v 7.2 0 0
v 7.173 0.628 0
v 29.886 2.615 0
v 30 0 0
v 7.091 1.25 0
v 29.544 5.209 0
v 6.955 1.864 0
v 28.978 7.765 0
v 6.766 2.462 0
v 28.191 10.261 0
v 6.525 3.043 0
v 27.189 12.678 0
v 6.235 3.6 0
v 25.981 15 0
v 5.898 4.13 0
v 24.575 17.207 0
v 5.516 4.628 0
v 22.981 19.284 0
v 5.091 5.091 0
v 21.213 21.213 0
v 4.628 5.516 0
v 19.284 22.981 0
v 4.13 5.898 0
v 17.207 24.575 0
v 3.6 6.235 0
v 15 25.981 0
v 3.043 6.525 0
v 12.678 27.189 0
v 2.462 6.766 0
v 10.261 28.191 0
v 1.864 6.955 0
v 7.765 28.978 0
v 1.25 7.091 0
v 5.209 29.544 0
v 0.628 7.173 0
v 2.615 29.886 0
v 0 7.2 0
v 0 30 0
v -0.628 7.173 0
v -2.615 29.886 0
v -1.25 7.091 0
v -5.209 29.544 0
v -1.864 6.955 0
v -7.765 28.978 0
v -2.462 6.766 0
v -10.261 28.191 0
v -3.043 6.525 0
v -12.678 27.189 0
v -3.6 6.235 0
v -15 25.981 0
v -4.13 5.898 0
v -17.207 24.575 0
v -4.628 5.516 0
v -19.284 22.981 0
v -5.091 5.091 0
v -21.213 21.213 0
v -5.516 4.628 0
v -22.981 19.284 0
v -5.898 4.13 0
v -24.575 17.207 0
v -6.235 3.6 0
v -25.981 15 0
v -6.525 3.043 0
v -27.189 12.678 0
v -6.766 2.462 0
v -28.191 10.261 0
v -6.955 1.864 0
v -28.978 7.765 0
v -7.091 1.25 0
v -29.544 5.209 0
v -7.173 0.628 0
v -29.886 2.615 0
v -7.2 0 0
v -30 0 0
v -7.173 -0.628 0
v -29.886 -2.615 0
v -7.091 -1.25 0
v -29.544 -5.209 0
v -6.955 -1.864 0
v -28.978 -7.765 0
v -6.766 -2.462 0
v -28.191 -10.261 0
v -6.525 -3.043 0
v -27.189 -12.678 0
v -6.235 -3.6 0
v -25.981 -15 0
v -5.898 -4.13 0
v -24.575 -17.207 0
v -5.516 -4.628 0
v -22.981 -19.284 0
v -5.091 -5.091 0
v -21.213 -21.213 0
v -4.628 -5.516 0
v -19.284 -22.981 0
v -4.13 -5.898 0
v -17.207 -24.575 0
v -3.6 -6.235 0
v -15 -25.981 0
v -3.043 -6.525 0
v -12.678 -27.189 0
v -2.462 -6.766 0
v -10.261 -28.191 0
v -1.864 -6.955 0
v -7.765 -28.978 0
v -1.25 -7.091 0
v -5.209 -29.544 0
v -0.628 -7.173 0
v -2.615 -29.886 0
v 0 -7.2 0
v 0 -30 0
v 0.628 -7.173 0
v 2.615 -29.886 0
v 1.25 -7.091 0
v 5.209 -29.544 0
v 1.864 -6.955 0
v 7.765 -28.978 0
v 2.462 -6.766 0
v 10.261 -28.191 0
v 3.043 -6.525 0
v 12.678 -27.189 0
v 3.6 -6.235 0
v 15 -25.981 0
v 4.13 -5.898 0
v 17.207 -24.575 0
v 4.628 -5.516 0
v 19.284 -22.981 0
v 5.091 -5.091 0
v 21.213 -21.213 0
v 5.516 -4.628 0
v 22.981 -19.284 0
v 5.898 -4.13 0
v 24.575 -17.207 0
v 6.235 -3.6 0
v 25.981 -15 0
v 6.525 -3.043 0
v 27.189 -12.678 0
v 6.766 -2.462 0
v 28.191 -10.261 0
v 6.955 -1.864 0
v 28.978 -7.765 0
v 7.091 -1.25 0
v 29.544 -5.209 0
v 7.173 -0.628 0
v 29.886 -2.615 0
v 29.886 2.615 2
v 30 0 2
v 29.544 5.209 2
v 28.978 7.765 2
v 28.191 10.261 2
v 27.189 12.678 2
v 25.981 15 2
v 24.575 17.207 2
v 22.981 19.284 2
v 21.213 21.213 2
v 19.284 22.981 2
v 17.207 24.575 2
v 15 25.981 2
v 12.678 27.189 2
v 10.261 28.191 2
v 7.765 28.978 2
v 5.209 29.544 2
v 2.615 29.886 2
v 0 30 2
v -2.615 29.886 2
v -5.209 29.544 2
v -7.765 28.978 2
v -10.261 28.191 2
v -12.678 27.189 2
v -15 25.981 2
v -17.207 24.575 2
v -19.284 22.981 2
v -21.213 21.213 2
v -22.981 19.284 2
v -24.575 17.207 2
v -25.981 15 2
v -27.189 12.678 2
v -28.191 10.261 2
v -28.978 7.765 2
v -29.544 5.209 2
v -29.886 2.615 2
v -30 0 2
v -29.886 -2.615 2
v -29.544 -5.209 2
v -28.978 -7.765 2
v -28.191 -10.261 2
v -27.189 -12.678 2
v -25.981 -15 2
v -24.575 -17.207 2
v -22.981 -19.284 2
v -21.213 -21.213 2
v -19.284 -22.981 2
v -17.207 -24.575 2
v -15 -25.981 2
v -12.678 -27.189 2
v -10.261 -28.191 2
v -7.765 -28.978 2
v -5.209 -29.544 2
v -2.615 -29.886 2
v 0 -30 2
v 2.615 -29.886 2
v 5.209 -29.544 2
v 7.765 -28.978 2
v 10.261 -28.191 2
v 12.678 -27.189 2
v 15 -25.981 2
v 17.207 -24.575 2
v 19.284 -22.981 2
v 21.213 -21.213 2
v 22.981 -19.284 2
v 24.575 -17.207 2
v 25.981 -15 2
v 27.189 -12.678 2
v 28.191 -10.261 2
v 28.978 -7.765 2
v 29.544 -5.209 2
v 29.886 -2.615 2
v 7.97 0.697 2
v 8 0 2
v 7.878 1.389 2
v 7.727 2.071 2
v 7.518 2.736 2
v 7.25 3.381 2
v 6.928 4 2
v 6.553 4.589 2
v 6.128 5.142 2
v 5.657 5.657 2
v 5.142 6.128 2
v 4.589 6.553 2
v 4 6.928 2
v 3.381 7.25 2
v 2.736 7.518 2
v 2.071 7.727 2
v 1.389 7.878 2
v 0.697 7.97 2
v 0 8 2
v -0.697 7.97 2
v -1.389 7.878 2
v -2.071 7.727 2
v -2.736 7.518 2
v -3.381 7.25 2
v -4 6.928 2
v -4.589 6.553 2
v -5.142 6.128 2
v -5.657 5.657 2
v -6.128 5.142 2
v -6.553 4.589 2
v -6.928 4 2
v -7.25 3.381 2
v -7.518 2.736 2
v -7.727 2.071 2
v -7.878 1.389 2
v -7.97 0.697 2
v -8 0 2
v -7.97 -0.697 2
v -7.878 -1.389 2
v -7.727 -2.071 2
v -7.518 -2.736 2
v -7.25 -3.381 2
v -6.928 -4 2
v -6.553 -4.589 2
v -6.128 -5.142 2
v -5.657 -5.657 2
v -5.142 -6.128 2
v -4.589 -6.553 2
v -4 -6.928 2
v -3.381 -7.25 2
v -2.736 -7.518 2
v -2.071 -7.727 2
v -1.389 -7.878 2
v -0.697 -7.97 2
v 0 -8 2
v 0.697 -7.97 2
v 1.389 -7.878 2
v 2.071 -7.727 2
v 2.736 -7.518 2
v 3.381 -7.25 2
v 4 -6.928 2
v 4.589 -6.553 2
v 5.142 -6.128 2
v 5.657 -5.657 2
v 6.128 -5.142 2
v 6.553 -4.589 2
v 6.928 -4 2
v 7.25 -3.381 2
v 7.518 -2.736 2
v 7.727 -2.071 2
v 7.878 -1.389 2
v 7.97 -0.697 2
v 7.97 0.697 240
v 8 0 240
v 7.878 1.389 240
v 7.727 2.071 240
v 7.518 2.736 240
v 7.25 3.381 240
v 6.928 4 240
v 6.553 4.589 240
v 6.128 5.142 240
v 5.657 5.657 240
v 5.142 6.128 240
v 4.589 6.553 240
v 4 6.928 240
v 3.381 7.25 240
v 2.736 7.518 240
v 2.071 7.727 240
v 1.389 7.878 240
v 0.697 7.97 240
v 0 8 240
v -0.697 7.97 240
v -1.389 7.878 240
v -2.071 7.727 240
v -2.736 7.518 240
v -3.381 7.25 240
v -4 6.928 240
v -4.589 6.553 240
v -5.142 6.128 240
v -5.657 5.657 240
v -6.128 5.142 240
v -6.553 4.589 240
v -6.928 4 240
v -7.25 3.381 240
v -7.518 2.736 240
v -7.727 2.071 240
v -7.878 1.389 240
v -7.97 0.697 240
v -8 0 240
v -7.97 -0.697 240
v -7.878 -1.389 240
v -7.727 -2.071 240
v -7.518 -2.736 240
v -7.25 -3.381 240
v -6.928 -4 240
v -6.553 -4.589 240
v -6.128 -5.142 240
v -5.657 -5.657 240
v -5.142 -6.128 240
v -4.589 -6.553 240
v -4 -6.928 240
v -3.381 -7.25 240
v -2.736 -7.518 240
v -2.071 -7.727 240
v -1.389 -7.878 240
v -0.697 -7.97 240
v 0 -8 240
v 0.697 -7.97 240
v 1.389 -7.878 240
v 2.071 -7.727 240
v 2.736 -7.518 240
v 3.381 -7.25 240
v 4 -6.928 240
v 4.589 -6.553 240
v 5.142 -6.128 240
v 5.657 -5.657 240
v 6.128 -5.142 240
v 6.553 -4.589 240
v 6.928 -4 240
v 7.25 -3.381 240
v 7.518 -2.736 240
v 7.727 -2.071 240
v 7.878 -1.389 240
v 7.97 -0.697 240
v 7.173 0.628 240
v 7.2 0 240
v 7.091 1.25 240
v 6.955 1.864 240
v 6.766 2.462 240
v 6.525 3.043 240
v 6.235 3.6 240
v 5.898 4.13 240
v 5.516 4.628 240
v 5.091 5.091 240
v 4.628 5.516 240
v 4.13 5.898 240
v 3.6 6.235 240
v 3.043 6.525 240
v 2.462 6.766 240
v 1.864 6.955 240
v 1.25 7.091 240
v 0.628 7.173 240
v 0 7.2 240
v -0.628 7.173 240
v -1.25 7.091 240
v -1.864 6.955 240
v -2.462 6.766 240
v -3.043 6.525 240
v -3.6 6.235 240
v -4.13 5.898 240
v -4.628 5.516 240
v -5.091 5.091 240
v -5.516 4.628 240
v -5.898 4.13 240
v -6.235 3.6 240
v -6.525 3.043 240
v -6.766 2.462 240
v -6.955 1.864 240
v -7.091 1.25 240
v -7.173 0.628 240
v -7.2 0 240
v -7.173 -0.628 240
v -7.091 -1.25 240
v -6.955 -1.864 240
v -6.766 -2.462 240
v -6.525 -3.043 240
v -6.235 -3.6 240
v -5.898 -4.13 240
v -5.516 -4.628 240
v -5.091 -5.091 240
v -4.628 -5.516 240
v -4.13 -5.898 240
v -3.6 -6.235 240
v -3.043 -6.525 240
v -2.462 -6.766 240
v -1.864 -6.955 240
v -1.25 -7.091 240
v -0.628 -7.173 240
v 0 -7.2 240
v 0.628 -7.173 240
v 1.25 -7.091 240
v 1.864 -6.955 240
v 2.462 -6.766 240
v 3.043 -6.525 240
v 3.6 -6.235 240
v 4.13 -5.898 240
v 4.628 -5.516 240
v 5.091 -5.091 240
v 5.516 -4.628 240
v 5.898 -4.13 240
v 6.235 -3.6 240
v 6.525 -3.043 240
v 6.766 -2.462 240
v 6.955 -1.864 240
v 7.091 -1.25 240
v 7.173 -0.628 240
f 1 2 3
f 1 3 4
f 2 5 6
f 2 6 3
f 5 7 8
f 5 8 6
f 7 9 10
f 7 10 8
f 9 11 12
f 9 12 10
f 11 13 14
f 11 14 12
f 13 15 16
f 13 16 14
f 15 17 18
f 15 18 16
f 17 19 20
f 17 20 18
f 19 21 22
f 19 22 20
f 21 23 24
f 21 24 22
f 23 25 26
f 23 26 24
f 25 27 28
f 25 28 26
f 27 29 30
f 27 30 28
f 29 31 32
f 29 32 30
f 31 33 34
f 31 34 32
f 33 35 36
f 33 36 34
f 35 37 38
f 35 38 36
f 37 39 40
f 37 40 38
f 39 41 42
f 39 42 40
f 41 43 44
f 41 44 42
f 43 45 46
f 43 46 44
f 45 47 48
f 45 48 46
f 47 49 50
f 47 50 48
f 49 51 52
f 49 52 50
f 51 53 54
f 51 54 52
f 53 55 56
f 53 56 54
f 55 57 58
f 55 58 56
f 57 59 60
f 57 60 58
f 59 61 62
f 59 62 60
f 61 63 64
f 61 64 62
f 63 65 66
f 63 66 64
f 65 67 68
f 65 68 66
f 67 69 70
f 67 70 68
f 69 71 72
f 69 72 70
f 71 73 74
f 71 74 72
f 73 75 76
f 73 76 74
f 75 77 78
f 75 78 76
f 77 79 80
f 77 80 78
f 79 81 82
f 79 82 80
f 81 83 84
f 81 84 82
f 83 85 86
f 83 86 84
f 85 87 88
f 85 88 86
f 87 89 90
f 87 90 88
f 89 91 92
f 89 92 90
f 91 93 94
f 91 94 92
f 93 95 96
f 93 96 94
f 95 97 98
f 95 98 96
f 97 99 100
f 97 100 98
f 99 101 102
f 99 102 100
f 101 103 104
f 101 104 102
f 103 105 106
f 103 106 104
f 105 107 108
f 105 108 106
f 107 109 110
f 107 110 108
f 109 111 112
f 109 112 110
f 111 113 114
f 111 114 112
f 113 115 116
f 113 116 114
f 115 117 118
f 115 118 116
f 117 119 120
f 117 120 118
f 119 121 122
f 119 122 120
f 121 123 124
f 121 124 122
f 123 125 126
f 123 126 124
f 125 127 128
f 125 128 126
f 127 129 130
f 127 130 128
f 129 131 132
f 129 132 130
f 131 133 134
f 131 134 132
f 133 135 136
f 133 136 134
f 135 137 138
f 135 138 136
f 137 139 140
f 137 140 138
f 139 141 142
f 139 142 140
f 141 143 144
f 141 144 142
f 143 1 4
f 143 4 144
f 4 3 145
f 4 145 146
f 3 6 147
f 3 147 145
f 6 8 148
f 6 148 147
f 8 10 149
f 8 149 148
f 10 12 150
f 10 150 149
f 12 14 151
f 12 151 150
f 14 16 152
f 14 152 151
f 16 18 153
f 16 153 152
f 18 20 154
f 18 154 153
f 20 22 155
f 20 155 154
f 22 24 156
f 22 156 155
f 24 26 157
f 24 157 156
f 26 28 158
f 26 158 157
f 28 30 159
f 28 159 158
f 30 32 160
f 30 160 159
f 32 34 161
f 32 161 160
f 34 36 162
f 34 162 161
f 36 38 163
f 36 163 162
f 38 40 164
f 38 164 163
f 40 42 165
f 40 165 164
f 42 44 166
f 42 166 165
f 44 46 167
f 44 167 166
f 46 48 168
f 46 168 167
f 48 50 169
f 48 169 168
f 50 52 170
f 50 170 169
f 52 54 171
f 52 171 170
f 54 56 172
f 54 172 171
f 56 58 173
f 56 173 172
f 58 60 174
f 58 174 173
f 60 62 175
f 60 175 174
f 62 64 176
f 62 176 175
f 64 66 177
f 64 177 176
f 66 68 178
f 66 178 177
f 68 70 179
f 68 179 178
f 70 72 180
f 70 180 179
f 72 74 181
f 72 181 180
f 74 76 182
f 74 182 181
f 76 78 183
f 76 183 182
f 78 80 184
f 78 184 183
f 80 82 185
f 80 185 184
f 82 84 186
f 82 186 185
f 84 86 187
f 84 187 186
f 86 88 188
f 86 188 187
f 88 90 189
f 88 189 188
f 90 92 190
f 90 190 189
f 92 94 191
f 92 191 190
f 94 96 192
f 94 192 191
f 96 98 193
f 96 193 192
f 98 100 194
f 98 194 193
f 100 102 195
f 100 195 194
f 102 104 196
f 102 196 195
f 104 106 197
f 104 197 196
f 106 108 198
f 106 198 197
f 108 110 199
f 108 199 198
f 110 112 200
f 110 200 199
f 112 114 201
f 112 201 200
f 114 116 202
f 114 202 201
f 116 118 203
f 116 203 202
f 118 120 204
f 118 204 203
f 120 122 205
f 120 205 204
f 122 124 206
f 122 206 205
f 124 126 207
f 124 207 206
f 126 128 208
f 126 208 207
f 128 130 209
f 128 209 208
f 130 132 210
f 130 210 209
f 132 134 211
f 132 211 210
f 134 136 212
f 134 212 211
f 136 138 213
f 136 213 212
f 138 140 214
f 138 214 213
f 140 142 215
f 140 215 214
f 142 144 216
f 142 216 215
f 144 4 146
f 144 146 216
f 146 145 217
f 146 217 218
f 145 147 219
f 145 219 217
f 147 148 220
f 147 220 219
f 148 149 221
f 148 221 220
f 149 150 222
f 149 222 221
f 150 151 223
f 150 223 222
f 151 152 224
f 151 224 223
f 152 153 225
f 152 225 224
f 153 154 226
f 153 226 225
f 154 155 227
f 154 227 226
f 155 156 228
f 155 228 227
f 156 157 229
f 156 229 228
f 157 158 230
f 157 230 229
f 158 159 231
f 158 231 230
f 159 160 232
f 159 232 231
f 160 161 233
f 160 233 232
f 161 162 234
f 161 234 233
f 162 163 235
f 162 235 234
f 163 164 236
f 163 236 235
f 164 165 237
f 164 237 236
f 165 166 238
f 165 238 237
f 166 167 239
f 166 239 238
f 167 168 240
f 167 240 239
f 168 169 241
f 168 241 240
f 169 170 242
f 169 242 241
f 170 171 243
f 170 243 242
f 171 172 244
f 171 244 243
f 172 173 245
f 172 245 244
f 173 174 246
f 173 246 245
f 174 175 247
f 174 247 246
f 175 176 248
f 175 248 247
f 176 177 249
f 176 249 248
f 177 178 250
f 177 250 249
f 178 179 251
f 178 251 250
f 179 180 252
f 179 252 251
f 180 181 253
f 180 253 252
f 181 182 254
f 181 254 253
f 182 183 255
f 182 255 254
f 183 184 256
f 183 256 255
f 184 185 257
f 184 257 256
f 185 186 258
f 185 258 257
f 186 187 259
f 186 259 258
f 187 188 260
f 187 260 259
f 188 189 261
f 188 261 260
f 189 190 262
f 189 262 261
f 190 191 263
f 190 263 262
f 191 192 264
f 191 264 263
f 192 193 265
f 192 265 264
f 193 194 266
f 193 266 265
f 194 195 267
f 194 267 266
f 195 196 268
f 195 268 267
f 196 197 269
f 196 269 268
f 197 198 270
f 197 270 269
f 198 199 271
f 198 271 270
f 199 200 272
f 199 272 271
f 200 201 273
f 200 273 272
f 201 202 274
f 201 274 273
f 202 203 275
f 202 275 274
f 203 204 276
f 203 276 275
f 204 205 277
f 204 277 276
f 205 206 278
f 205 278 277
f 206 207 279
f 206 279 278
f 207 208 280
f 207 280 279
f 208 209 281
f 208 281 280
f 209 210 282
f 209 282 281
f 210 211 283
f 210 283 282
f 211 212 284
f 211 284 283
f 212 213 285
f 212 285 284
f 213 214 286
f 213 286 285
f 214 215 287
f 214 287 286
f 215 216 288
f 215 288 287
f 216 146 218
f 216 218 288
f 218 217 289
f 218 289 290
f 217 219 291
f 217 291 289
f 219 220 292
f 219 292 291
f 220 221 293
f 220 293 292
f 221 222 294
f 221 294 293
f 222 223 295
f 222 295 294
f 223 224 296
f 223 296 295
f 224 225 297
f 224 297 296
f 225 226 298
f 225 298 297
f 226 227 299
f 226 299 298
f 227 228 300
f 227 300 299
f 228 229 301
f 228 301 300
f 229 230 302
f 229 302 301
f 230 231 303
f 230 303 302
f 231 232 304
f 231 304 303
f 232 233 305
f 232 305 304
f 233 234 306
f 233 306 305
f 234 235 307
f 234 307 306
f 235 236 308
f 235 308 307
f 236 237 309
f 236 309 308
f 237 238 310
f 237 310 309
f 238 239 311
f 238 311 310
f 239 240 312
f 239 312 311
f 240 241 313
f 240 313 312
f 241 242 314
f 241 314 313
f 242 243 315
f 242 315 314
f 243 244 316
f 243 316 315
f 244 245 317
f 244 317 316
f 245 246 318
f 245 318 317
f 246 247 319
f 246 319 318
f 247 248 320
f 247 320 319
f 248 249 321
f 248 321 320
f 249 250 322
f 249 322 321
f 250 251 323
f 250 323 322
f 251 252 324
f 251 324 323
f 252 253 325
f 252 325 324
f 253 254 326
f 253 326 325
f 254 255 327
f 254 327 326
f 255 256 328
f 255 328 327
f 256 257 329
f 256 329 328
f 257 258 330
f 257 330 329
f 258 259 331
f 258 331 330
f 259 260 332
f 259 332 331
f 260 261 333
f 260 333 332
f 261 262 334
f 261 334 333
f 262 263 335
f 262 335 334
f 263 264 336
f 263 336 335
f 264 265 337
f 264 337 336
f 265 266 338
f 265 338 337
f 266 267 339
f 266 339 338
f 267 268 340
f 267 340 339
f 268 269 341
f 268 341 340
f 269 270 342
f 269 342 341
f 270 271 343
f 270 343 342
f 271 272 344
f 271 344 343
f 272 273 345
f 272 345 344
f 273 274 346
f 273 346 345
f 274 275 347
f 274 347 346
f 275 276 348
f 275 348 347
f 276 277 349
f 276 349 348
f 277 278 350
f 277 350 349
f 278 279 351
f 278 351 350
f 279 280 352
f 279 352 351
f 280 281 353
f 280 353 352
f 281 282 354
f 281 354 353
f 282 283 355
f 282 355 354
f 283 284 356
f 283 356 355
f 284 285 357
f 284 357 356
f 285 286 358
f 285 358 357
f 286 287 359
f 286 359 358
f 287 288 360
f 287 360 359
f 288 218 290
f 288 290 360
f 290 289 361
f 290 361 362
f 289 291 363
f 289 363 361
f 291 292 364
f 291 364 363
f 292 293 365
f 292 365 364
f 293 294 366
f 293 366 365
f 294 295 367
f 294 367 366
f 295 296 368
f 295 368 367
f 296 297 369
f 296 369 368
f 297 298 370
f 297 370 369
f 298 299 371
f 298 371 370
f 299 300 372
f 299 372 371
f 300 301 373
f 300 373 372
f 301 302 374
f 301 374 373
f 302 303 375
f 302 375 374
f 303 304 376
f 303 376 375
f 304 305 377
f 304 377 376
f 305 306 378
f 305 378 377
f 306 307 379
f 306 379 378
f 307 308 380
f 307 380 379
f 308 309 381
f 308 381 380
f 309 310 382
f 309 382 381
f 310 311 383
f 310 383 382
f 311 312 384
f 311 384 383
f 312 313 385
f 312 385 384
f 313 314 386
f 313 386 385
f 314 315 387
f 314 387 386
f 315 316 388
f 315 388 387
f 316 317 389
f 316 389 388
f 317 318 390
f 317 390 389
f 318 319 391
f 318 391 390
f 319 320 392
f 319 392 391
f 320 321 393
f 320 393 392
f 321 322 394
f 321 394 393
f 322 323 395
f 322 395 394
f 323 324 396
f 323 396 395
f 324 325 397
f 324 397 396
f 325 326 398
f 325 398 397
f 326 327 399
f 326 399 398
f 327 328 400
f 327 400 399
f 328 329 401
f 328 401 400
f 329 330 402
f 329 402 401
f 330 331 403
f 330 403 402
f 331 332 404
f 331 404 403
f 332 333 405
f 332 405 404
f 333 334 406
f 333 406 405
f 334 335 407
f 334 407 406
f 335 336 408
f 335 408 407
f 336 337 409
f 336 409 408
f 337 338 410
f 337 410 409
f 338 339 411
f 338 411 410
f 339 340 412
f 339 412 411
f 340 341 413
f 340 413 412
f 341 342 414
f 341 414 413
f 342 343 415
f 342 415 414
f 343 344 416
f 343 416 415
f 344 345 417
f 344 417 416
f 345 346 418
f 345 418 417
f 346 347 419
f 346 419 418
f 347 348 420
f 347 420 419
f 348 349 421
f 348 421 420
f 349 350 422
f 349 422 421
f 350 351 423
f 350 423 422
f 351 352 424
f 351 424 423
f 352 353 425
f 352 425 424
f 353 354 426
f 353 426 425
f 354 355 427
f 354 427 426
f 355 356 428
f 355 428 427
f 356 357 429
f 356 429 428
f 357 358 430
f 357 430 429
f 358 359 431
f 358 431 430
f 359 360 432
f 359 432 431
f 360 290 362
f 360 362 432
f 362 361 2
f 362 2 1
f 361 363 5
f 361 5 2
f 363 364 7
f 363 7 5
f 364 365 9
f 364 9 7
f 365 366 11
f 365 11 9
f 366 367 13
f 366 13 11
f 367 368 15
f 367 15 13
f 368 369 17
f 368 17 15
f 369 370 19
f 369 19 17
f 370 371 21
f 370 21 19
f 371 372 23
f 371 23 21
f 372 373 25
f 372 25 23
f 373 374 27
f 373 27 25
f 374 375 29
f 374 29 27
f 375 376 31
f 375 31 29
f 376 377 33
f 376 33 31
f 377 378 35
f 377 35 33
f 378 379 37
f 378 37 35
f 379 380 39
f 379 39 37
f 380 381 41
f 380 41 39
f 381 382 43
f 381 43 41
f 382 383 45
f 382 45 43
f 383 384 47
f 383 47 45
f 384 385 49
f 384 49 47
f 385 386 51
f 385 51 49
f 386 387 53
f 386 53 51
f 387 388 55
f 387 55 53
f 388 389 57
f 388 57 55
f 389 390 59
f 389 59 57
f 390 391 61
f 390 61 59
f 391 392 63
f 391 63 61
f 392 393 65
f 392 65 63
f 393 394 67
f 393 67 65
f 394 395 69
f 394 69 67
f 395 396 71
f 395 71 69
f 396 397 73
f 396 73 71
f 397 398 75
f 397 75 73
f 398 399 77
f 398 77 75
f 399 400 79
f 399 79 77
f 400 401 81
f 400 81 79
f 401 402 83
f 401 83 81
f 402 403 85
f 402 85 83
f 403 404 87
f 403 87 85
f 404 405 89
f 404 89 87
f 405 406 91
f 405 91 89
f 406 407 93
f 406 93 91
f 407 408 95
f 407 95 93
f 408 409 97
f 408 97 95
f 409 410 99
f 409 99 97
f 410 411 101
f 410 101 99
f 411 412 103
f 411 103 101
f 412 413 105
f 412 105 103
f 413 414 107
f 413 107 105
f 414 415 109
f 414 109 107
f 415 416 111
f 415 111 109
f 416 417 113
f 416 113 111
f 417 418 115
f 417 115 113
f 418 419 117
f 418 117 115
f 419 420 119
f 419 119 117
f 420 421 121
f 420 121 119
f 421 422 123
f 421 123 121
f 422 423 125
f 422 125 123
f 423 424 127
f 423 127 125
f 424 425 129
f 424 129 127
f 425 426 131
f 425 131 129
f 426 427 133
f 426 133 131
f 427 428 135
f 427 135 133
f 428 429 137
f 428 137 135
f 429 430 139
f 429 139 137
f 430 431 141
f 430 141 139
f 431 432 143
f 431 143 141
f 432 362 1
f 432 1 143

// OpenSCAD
// post 16 mm x 240 mm, 2 walls (0.8 mm), 60 mm foot; no infill needed (generated by tools/demo_course_parts.py)
rotate_extrude($fn=72) polygon([[7.2, 0.0], [30.0, 0.0], [30.0, 2.0], [8.0, 2.0], [8.0, 240.0], [7.2, 240.0]]);
